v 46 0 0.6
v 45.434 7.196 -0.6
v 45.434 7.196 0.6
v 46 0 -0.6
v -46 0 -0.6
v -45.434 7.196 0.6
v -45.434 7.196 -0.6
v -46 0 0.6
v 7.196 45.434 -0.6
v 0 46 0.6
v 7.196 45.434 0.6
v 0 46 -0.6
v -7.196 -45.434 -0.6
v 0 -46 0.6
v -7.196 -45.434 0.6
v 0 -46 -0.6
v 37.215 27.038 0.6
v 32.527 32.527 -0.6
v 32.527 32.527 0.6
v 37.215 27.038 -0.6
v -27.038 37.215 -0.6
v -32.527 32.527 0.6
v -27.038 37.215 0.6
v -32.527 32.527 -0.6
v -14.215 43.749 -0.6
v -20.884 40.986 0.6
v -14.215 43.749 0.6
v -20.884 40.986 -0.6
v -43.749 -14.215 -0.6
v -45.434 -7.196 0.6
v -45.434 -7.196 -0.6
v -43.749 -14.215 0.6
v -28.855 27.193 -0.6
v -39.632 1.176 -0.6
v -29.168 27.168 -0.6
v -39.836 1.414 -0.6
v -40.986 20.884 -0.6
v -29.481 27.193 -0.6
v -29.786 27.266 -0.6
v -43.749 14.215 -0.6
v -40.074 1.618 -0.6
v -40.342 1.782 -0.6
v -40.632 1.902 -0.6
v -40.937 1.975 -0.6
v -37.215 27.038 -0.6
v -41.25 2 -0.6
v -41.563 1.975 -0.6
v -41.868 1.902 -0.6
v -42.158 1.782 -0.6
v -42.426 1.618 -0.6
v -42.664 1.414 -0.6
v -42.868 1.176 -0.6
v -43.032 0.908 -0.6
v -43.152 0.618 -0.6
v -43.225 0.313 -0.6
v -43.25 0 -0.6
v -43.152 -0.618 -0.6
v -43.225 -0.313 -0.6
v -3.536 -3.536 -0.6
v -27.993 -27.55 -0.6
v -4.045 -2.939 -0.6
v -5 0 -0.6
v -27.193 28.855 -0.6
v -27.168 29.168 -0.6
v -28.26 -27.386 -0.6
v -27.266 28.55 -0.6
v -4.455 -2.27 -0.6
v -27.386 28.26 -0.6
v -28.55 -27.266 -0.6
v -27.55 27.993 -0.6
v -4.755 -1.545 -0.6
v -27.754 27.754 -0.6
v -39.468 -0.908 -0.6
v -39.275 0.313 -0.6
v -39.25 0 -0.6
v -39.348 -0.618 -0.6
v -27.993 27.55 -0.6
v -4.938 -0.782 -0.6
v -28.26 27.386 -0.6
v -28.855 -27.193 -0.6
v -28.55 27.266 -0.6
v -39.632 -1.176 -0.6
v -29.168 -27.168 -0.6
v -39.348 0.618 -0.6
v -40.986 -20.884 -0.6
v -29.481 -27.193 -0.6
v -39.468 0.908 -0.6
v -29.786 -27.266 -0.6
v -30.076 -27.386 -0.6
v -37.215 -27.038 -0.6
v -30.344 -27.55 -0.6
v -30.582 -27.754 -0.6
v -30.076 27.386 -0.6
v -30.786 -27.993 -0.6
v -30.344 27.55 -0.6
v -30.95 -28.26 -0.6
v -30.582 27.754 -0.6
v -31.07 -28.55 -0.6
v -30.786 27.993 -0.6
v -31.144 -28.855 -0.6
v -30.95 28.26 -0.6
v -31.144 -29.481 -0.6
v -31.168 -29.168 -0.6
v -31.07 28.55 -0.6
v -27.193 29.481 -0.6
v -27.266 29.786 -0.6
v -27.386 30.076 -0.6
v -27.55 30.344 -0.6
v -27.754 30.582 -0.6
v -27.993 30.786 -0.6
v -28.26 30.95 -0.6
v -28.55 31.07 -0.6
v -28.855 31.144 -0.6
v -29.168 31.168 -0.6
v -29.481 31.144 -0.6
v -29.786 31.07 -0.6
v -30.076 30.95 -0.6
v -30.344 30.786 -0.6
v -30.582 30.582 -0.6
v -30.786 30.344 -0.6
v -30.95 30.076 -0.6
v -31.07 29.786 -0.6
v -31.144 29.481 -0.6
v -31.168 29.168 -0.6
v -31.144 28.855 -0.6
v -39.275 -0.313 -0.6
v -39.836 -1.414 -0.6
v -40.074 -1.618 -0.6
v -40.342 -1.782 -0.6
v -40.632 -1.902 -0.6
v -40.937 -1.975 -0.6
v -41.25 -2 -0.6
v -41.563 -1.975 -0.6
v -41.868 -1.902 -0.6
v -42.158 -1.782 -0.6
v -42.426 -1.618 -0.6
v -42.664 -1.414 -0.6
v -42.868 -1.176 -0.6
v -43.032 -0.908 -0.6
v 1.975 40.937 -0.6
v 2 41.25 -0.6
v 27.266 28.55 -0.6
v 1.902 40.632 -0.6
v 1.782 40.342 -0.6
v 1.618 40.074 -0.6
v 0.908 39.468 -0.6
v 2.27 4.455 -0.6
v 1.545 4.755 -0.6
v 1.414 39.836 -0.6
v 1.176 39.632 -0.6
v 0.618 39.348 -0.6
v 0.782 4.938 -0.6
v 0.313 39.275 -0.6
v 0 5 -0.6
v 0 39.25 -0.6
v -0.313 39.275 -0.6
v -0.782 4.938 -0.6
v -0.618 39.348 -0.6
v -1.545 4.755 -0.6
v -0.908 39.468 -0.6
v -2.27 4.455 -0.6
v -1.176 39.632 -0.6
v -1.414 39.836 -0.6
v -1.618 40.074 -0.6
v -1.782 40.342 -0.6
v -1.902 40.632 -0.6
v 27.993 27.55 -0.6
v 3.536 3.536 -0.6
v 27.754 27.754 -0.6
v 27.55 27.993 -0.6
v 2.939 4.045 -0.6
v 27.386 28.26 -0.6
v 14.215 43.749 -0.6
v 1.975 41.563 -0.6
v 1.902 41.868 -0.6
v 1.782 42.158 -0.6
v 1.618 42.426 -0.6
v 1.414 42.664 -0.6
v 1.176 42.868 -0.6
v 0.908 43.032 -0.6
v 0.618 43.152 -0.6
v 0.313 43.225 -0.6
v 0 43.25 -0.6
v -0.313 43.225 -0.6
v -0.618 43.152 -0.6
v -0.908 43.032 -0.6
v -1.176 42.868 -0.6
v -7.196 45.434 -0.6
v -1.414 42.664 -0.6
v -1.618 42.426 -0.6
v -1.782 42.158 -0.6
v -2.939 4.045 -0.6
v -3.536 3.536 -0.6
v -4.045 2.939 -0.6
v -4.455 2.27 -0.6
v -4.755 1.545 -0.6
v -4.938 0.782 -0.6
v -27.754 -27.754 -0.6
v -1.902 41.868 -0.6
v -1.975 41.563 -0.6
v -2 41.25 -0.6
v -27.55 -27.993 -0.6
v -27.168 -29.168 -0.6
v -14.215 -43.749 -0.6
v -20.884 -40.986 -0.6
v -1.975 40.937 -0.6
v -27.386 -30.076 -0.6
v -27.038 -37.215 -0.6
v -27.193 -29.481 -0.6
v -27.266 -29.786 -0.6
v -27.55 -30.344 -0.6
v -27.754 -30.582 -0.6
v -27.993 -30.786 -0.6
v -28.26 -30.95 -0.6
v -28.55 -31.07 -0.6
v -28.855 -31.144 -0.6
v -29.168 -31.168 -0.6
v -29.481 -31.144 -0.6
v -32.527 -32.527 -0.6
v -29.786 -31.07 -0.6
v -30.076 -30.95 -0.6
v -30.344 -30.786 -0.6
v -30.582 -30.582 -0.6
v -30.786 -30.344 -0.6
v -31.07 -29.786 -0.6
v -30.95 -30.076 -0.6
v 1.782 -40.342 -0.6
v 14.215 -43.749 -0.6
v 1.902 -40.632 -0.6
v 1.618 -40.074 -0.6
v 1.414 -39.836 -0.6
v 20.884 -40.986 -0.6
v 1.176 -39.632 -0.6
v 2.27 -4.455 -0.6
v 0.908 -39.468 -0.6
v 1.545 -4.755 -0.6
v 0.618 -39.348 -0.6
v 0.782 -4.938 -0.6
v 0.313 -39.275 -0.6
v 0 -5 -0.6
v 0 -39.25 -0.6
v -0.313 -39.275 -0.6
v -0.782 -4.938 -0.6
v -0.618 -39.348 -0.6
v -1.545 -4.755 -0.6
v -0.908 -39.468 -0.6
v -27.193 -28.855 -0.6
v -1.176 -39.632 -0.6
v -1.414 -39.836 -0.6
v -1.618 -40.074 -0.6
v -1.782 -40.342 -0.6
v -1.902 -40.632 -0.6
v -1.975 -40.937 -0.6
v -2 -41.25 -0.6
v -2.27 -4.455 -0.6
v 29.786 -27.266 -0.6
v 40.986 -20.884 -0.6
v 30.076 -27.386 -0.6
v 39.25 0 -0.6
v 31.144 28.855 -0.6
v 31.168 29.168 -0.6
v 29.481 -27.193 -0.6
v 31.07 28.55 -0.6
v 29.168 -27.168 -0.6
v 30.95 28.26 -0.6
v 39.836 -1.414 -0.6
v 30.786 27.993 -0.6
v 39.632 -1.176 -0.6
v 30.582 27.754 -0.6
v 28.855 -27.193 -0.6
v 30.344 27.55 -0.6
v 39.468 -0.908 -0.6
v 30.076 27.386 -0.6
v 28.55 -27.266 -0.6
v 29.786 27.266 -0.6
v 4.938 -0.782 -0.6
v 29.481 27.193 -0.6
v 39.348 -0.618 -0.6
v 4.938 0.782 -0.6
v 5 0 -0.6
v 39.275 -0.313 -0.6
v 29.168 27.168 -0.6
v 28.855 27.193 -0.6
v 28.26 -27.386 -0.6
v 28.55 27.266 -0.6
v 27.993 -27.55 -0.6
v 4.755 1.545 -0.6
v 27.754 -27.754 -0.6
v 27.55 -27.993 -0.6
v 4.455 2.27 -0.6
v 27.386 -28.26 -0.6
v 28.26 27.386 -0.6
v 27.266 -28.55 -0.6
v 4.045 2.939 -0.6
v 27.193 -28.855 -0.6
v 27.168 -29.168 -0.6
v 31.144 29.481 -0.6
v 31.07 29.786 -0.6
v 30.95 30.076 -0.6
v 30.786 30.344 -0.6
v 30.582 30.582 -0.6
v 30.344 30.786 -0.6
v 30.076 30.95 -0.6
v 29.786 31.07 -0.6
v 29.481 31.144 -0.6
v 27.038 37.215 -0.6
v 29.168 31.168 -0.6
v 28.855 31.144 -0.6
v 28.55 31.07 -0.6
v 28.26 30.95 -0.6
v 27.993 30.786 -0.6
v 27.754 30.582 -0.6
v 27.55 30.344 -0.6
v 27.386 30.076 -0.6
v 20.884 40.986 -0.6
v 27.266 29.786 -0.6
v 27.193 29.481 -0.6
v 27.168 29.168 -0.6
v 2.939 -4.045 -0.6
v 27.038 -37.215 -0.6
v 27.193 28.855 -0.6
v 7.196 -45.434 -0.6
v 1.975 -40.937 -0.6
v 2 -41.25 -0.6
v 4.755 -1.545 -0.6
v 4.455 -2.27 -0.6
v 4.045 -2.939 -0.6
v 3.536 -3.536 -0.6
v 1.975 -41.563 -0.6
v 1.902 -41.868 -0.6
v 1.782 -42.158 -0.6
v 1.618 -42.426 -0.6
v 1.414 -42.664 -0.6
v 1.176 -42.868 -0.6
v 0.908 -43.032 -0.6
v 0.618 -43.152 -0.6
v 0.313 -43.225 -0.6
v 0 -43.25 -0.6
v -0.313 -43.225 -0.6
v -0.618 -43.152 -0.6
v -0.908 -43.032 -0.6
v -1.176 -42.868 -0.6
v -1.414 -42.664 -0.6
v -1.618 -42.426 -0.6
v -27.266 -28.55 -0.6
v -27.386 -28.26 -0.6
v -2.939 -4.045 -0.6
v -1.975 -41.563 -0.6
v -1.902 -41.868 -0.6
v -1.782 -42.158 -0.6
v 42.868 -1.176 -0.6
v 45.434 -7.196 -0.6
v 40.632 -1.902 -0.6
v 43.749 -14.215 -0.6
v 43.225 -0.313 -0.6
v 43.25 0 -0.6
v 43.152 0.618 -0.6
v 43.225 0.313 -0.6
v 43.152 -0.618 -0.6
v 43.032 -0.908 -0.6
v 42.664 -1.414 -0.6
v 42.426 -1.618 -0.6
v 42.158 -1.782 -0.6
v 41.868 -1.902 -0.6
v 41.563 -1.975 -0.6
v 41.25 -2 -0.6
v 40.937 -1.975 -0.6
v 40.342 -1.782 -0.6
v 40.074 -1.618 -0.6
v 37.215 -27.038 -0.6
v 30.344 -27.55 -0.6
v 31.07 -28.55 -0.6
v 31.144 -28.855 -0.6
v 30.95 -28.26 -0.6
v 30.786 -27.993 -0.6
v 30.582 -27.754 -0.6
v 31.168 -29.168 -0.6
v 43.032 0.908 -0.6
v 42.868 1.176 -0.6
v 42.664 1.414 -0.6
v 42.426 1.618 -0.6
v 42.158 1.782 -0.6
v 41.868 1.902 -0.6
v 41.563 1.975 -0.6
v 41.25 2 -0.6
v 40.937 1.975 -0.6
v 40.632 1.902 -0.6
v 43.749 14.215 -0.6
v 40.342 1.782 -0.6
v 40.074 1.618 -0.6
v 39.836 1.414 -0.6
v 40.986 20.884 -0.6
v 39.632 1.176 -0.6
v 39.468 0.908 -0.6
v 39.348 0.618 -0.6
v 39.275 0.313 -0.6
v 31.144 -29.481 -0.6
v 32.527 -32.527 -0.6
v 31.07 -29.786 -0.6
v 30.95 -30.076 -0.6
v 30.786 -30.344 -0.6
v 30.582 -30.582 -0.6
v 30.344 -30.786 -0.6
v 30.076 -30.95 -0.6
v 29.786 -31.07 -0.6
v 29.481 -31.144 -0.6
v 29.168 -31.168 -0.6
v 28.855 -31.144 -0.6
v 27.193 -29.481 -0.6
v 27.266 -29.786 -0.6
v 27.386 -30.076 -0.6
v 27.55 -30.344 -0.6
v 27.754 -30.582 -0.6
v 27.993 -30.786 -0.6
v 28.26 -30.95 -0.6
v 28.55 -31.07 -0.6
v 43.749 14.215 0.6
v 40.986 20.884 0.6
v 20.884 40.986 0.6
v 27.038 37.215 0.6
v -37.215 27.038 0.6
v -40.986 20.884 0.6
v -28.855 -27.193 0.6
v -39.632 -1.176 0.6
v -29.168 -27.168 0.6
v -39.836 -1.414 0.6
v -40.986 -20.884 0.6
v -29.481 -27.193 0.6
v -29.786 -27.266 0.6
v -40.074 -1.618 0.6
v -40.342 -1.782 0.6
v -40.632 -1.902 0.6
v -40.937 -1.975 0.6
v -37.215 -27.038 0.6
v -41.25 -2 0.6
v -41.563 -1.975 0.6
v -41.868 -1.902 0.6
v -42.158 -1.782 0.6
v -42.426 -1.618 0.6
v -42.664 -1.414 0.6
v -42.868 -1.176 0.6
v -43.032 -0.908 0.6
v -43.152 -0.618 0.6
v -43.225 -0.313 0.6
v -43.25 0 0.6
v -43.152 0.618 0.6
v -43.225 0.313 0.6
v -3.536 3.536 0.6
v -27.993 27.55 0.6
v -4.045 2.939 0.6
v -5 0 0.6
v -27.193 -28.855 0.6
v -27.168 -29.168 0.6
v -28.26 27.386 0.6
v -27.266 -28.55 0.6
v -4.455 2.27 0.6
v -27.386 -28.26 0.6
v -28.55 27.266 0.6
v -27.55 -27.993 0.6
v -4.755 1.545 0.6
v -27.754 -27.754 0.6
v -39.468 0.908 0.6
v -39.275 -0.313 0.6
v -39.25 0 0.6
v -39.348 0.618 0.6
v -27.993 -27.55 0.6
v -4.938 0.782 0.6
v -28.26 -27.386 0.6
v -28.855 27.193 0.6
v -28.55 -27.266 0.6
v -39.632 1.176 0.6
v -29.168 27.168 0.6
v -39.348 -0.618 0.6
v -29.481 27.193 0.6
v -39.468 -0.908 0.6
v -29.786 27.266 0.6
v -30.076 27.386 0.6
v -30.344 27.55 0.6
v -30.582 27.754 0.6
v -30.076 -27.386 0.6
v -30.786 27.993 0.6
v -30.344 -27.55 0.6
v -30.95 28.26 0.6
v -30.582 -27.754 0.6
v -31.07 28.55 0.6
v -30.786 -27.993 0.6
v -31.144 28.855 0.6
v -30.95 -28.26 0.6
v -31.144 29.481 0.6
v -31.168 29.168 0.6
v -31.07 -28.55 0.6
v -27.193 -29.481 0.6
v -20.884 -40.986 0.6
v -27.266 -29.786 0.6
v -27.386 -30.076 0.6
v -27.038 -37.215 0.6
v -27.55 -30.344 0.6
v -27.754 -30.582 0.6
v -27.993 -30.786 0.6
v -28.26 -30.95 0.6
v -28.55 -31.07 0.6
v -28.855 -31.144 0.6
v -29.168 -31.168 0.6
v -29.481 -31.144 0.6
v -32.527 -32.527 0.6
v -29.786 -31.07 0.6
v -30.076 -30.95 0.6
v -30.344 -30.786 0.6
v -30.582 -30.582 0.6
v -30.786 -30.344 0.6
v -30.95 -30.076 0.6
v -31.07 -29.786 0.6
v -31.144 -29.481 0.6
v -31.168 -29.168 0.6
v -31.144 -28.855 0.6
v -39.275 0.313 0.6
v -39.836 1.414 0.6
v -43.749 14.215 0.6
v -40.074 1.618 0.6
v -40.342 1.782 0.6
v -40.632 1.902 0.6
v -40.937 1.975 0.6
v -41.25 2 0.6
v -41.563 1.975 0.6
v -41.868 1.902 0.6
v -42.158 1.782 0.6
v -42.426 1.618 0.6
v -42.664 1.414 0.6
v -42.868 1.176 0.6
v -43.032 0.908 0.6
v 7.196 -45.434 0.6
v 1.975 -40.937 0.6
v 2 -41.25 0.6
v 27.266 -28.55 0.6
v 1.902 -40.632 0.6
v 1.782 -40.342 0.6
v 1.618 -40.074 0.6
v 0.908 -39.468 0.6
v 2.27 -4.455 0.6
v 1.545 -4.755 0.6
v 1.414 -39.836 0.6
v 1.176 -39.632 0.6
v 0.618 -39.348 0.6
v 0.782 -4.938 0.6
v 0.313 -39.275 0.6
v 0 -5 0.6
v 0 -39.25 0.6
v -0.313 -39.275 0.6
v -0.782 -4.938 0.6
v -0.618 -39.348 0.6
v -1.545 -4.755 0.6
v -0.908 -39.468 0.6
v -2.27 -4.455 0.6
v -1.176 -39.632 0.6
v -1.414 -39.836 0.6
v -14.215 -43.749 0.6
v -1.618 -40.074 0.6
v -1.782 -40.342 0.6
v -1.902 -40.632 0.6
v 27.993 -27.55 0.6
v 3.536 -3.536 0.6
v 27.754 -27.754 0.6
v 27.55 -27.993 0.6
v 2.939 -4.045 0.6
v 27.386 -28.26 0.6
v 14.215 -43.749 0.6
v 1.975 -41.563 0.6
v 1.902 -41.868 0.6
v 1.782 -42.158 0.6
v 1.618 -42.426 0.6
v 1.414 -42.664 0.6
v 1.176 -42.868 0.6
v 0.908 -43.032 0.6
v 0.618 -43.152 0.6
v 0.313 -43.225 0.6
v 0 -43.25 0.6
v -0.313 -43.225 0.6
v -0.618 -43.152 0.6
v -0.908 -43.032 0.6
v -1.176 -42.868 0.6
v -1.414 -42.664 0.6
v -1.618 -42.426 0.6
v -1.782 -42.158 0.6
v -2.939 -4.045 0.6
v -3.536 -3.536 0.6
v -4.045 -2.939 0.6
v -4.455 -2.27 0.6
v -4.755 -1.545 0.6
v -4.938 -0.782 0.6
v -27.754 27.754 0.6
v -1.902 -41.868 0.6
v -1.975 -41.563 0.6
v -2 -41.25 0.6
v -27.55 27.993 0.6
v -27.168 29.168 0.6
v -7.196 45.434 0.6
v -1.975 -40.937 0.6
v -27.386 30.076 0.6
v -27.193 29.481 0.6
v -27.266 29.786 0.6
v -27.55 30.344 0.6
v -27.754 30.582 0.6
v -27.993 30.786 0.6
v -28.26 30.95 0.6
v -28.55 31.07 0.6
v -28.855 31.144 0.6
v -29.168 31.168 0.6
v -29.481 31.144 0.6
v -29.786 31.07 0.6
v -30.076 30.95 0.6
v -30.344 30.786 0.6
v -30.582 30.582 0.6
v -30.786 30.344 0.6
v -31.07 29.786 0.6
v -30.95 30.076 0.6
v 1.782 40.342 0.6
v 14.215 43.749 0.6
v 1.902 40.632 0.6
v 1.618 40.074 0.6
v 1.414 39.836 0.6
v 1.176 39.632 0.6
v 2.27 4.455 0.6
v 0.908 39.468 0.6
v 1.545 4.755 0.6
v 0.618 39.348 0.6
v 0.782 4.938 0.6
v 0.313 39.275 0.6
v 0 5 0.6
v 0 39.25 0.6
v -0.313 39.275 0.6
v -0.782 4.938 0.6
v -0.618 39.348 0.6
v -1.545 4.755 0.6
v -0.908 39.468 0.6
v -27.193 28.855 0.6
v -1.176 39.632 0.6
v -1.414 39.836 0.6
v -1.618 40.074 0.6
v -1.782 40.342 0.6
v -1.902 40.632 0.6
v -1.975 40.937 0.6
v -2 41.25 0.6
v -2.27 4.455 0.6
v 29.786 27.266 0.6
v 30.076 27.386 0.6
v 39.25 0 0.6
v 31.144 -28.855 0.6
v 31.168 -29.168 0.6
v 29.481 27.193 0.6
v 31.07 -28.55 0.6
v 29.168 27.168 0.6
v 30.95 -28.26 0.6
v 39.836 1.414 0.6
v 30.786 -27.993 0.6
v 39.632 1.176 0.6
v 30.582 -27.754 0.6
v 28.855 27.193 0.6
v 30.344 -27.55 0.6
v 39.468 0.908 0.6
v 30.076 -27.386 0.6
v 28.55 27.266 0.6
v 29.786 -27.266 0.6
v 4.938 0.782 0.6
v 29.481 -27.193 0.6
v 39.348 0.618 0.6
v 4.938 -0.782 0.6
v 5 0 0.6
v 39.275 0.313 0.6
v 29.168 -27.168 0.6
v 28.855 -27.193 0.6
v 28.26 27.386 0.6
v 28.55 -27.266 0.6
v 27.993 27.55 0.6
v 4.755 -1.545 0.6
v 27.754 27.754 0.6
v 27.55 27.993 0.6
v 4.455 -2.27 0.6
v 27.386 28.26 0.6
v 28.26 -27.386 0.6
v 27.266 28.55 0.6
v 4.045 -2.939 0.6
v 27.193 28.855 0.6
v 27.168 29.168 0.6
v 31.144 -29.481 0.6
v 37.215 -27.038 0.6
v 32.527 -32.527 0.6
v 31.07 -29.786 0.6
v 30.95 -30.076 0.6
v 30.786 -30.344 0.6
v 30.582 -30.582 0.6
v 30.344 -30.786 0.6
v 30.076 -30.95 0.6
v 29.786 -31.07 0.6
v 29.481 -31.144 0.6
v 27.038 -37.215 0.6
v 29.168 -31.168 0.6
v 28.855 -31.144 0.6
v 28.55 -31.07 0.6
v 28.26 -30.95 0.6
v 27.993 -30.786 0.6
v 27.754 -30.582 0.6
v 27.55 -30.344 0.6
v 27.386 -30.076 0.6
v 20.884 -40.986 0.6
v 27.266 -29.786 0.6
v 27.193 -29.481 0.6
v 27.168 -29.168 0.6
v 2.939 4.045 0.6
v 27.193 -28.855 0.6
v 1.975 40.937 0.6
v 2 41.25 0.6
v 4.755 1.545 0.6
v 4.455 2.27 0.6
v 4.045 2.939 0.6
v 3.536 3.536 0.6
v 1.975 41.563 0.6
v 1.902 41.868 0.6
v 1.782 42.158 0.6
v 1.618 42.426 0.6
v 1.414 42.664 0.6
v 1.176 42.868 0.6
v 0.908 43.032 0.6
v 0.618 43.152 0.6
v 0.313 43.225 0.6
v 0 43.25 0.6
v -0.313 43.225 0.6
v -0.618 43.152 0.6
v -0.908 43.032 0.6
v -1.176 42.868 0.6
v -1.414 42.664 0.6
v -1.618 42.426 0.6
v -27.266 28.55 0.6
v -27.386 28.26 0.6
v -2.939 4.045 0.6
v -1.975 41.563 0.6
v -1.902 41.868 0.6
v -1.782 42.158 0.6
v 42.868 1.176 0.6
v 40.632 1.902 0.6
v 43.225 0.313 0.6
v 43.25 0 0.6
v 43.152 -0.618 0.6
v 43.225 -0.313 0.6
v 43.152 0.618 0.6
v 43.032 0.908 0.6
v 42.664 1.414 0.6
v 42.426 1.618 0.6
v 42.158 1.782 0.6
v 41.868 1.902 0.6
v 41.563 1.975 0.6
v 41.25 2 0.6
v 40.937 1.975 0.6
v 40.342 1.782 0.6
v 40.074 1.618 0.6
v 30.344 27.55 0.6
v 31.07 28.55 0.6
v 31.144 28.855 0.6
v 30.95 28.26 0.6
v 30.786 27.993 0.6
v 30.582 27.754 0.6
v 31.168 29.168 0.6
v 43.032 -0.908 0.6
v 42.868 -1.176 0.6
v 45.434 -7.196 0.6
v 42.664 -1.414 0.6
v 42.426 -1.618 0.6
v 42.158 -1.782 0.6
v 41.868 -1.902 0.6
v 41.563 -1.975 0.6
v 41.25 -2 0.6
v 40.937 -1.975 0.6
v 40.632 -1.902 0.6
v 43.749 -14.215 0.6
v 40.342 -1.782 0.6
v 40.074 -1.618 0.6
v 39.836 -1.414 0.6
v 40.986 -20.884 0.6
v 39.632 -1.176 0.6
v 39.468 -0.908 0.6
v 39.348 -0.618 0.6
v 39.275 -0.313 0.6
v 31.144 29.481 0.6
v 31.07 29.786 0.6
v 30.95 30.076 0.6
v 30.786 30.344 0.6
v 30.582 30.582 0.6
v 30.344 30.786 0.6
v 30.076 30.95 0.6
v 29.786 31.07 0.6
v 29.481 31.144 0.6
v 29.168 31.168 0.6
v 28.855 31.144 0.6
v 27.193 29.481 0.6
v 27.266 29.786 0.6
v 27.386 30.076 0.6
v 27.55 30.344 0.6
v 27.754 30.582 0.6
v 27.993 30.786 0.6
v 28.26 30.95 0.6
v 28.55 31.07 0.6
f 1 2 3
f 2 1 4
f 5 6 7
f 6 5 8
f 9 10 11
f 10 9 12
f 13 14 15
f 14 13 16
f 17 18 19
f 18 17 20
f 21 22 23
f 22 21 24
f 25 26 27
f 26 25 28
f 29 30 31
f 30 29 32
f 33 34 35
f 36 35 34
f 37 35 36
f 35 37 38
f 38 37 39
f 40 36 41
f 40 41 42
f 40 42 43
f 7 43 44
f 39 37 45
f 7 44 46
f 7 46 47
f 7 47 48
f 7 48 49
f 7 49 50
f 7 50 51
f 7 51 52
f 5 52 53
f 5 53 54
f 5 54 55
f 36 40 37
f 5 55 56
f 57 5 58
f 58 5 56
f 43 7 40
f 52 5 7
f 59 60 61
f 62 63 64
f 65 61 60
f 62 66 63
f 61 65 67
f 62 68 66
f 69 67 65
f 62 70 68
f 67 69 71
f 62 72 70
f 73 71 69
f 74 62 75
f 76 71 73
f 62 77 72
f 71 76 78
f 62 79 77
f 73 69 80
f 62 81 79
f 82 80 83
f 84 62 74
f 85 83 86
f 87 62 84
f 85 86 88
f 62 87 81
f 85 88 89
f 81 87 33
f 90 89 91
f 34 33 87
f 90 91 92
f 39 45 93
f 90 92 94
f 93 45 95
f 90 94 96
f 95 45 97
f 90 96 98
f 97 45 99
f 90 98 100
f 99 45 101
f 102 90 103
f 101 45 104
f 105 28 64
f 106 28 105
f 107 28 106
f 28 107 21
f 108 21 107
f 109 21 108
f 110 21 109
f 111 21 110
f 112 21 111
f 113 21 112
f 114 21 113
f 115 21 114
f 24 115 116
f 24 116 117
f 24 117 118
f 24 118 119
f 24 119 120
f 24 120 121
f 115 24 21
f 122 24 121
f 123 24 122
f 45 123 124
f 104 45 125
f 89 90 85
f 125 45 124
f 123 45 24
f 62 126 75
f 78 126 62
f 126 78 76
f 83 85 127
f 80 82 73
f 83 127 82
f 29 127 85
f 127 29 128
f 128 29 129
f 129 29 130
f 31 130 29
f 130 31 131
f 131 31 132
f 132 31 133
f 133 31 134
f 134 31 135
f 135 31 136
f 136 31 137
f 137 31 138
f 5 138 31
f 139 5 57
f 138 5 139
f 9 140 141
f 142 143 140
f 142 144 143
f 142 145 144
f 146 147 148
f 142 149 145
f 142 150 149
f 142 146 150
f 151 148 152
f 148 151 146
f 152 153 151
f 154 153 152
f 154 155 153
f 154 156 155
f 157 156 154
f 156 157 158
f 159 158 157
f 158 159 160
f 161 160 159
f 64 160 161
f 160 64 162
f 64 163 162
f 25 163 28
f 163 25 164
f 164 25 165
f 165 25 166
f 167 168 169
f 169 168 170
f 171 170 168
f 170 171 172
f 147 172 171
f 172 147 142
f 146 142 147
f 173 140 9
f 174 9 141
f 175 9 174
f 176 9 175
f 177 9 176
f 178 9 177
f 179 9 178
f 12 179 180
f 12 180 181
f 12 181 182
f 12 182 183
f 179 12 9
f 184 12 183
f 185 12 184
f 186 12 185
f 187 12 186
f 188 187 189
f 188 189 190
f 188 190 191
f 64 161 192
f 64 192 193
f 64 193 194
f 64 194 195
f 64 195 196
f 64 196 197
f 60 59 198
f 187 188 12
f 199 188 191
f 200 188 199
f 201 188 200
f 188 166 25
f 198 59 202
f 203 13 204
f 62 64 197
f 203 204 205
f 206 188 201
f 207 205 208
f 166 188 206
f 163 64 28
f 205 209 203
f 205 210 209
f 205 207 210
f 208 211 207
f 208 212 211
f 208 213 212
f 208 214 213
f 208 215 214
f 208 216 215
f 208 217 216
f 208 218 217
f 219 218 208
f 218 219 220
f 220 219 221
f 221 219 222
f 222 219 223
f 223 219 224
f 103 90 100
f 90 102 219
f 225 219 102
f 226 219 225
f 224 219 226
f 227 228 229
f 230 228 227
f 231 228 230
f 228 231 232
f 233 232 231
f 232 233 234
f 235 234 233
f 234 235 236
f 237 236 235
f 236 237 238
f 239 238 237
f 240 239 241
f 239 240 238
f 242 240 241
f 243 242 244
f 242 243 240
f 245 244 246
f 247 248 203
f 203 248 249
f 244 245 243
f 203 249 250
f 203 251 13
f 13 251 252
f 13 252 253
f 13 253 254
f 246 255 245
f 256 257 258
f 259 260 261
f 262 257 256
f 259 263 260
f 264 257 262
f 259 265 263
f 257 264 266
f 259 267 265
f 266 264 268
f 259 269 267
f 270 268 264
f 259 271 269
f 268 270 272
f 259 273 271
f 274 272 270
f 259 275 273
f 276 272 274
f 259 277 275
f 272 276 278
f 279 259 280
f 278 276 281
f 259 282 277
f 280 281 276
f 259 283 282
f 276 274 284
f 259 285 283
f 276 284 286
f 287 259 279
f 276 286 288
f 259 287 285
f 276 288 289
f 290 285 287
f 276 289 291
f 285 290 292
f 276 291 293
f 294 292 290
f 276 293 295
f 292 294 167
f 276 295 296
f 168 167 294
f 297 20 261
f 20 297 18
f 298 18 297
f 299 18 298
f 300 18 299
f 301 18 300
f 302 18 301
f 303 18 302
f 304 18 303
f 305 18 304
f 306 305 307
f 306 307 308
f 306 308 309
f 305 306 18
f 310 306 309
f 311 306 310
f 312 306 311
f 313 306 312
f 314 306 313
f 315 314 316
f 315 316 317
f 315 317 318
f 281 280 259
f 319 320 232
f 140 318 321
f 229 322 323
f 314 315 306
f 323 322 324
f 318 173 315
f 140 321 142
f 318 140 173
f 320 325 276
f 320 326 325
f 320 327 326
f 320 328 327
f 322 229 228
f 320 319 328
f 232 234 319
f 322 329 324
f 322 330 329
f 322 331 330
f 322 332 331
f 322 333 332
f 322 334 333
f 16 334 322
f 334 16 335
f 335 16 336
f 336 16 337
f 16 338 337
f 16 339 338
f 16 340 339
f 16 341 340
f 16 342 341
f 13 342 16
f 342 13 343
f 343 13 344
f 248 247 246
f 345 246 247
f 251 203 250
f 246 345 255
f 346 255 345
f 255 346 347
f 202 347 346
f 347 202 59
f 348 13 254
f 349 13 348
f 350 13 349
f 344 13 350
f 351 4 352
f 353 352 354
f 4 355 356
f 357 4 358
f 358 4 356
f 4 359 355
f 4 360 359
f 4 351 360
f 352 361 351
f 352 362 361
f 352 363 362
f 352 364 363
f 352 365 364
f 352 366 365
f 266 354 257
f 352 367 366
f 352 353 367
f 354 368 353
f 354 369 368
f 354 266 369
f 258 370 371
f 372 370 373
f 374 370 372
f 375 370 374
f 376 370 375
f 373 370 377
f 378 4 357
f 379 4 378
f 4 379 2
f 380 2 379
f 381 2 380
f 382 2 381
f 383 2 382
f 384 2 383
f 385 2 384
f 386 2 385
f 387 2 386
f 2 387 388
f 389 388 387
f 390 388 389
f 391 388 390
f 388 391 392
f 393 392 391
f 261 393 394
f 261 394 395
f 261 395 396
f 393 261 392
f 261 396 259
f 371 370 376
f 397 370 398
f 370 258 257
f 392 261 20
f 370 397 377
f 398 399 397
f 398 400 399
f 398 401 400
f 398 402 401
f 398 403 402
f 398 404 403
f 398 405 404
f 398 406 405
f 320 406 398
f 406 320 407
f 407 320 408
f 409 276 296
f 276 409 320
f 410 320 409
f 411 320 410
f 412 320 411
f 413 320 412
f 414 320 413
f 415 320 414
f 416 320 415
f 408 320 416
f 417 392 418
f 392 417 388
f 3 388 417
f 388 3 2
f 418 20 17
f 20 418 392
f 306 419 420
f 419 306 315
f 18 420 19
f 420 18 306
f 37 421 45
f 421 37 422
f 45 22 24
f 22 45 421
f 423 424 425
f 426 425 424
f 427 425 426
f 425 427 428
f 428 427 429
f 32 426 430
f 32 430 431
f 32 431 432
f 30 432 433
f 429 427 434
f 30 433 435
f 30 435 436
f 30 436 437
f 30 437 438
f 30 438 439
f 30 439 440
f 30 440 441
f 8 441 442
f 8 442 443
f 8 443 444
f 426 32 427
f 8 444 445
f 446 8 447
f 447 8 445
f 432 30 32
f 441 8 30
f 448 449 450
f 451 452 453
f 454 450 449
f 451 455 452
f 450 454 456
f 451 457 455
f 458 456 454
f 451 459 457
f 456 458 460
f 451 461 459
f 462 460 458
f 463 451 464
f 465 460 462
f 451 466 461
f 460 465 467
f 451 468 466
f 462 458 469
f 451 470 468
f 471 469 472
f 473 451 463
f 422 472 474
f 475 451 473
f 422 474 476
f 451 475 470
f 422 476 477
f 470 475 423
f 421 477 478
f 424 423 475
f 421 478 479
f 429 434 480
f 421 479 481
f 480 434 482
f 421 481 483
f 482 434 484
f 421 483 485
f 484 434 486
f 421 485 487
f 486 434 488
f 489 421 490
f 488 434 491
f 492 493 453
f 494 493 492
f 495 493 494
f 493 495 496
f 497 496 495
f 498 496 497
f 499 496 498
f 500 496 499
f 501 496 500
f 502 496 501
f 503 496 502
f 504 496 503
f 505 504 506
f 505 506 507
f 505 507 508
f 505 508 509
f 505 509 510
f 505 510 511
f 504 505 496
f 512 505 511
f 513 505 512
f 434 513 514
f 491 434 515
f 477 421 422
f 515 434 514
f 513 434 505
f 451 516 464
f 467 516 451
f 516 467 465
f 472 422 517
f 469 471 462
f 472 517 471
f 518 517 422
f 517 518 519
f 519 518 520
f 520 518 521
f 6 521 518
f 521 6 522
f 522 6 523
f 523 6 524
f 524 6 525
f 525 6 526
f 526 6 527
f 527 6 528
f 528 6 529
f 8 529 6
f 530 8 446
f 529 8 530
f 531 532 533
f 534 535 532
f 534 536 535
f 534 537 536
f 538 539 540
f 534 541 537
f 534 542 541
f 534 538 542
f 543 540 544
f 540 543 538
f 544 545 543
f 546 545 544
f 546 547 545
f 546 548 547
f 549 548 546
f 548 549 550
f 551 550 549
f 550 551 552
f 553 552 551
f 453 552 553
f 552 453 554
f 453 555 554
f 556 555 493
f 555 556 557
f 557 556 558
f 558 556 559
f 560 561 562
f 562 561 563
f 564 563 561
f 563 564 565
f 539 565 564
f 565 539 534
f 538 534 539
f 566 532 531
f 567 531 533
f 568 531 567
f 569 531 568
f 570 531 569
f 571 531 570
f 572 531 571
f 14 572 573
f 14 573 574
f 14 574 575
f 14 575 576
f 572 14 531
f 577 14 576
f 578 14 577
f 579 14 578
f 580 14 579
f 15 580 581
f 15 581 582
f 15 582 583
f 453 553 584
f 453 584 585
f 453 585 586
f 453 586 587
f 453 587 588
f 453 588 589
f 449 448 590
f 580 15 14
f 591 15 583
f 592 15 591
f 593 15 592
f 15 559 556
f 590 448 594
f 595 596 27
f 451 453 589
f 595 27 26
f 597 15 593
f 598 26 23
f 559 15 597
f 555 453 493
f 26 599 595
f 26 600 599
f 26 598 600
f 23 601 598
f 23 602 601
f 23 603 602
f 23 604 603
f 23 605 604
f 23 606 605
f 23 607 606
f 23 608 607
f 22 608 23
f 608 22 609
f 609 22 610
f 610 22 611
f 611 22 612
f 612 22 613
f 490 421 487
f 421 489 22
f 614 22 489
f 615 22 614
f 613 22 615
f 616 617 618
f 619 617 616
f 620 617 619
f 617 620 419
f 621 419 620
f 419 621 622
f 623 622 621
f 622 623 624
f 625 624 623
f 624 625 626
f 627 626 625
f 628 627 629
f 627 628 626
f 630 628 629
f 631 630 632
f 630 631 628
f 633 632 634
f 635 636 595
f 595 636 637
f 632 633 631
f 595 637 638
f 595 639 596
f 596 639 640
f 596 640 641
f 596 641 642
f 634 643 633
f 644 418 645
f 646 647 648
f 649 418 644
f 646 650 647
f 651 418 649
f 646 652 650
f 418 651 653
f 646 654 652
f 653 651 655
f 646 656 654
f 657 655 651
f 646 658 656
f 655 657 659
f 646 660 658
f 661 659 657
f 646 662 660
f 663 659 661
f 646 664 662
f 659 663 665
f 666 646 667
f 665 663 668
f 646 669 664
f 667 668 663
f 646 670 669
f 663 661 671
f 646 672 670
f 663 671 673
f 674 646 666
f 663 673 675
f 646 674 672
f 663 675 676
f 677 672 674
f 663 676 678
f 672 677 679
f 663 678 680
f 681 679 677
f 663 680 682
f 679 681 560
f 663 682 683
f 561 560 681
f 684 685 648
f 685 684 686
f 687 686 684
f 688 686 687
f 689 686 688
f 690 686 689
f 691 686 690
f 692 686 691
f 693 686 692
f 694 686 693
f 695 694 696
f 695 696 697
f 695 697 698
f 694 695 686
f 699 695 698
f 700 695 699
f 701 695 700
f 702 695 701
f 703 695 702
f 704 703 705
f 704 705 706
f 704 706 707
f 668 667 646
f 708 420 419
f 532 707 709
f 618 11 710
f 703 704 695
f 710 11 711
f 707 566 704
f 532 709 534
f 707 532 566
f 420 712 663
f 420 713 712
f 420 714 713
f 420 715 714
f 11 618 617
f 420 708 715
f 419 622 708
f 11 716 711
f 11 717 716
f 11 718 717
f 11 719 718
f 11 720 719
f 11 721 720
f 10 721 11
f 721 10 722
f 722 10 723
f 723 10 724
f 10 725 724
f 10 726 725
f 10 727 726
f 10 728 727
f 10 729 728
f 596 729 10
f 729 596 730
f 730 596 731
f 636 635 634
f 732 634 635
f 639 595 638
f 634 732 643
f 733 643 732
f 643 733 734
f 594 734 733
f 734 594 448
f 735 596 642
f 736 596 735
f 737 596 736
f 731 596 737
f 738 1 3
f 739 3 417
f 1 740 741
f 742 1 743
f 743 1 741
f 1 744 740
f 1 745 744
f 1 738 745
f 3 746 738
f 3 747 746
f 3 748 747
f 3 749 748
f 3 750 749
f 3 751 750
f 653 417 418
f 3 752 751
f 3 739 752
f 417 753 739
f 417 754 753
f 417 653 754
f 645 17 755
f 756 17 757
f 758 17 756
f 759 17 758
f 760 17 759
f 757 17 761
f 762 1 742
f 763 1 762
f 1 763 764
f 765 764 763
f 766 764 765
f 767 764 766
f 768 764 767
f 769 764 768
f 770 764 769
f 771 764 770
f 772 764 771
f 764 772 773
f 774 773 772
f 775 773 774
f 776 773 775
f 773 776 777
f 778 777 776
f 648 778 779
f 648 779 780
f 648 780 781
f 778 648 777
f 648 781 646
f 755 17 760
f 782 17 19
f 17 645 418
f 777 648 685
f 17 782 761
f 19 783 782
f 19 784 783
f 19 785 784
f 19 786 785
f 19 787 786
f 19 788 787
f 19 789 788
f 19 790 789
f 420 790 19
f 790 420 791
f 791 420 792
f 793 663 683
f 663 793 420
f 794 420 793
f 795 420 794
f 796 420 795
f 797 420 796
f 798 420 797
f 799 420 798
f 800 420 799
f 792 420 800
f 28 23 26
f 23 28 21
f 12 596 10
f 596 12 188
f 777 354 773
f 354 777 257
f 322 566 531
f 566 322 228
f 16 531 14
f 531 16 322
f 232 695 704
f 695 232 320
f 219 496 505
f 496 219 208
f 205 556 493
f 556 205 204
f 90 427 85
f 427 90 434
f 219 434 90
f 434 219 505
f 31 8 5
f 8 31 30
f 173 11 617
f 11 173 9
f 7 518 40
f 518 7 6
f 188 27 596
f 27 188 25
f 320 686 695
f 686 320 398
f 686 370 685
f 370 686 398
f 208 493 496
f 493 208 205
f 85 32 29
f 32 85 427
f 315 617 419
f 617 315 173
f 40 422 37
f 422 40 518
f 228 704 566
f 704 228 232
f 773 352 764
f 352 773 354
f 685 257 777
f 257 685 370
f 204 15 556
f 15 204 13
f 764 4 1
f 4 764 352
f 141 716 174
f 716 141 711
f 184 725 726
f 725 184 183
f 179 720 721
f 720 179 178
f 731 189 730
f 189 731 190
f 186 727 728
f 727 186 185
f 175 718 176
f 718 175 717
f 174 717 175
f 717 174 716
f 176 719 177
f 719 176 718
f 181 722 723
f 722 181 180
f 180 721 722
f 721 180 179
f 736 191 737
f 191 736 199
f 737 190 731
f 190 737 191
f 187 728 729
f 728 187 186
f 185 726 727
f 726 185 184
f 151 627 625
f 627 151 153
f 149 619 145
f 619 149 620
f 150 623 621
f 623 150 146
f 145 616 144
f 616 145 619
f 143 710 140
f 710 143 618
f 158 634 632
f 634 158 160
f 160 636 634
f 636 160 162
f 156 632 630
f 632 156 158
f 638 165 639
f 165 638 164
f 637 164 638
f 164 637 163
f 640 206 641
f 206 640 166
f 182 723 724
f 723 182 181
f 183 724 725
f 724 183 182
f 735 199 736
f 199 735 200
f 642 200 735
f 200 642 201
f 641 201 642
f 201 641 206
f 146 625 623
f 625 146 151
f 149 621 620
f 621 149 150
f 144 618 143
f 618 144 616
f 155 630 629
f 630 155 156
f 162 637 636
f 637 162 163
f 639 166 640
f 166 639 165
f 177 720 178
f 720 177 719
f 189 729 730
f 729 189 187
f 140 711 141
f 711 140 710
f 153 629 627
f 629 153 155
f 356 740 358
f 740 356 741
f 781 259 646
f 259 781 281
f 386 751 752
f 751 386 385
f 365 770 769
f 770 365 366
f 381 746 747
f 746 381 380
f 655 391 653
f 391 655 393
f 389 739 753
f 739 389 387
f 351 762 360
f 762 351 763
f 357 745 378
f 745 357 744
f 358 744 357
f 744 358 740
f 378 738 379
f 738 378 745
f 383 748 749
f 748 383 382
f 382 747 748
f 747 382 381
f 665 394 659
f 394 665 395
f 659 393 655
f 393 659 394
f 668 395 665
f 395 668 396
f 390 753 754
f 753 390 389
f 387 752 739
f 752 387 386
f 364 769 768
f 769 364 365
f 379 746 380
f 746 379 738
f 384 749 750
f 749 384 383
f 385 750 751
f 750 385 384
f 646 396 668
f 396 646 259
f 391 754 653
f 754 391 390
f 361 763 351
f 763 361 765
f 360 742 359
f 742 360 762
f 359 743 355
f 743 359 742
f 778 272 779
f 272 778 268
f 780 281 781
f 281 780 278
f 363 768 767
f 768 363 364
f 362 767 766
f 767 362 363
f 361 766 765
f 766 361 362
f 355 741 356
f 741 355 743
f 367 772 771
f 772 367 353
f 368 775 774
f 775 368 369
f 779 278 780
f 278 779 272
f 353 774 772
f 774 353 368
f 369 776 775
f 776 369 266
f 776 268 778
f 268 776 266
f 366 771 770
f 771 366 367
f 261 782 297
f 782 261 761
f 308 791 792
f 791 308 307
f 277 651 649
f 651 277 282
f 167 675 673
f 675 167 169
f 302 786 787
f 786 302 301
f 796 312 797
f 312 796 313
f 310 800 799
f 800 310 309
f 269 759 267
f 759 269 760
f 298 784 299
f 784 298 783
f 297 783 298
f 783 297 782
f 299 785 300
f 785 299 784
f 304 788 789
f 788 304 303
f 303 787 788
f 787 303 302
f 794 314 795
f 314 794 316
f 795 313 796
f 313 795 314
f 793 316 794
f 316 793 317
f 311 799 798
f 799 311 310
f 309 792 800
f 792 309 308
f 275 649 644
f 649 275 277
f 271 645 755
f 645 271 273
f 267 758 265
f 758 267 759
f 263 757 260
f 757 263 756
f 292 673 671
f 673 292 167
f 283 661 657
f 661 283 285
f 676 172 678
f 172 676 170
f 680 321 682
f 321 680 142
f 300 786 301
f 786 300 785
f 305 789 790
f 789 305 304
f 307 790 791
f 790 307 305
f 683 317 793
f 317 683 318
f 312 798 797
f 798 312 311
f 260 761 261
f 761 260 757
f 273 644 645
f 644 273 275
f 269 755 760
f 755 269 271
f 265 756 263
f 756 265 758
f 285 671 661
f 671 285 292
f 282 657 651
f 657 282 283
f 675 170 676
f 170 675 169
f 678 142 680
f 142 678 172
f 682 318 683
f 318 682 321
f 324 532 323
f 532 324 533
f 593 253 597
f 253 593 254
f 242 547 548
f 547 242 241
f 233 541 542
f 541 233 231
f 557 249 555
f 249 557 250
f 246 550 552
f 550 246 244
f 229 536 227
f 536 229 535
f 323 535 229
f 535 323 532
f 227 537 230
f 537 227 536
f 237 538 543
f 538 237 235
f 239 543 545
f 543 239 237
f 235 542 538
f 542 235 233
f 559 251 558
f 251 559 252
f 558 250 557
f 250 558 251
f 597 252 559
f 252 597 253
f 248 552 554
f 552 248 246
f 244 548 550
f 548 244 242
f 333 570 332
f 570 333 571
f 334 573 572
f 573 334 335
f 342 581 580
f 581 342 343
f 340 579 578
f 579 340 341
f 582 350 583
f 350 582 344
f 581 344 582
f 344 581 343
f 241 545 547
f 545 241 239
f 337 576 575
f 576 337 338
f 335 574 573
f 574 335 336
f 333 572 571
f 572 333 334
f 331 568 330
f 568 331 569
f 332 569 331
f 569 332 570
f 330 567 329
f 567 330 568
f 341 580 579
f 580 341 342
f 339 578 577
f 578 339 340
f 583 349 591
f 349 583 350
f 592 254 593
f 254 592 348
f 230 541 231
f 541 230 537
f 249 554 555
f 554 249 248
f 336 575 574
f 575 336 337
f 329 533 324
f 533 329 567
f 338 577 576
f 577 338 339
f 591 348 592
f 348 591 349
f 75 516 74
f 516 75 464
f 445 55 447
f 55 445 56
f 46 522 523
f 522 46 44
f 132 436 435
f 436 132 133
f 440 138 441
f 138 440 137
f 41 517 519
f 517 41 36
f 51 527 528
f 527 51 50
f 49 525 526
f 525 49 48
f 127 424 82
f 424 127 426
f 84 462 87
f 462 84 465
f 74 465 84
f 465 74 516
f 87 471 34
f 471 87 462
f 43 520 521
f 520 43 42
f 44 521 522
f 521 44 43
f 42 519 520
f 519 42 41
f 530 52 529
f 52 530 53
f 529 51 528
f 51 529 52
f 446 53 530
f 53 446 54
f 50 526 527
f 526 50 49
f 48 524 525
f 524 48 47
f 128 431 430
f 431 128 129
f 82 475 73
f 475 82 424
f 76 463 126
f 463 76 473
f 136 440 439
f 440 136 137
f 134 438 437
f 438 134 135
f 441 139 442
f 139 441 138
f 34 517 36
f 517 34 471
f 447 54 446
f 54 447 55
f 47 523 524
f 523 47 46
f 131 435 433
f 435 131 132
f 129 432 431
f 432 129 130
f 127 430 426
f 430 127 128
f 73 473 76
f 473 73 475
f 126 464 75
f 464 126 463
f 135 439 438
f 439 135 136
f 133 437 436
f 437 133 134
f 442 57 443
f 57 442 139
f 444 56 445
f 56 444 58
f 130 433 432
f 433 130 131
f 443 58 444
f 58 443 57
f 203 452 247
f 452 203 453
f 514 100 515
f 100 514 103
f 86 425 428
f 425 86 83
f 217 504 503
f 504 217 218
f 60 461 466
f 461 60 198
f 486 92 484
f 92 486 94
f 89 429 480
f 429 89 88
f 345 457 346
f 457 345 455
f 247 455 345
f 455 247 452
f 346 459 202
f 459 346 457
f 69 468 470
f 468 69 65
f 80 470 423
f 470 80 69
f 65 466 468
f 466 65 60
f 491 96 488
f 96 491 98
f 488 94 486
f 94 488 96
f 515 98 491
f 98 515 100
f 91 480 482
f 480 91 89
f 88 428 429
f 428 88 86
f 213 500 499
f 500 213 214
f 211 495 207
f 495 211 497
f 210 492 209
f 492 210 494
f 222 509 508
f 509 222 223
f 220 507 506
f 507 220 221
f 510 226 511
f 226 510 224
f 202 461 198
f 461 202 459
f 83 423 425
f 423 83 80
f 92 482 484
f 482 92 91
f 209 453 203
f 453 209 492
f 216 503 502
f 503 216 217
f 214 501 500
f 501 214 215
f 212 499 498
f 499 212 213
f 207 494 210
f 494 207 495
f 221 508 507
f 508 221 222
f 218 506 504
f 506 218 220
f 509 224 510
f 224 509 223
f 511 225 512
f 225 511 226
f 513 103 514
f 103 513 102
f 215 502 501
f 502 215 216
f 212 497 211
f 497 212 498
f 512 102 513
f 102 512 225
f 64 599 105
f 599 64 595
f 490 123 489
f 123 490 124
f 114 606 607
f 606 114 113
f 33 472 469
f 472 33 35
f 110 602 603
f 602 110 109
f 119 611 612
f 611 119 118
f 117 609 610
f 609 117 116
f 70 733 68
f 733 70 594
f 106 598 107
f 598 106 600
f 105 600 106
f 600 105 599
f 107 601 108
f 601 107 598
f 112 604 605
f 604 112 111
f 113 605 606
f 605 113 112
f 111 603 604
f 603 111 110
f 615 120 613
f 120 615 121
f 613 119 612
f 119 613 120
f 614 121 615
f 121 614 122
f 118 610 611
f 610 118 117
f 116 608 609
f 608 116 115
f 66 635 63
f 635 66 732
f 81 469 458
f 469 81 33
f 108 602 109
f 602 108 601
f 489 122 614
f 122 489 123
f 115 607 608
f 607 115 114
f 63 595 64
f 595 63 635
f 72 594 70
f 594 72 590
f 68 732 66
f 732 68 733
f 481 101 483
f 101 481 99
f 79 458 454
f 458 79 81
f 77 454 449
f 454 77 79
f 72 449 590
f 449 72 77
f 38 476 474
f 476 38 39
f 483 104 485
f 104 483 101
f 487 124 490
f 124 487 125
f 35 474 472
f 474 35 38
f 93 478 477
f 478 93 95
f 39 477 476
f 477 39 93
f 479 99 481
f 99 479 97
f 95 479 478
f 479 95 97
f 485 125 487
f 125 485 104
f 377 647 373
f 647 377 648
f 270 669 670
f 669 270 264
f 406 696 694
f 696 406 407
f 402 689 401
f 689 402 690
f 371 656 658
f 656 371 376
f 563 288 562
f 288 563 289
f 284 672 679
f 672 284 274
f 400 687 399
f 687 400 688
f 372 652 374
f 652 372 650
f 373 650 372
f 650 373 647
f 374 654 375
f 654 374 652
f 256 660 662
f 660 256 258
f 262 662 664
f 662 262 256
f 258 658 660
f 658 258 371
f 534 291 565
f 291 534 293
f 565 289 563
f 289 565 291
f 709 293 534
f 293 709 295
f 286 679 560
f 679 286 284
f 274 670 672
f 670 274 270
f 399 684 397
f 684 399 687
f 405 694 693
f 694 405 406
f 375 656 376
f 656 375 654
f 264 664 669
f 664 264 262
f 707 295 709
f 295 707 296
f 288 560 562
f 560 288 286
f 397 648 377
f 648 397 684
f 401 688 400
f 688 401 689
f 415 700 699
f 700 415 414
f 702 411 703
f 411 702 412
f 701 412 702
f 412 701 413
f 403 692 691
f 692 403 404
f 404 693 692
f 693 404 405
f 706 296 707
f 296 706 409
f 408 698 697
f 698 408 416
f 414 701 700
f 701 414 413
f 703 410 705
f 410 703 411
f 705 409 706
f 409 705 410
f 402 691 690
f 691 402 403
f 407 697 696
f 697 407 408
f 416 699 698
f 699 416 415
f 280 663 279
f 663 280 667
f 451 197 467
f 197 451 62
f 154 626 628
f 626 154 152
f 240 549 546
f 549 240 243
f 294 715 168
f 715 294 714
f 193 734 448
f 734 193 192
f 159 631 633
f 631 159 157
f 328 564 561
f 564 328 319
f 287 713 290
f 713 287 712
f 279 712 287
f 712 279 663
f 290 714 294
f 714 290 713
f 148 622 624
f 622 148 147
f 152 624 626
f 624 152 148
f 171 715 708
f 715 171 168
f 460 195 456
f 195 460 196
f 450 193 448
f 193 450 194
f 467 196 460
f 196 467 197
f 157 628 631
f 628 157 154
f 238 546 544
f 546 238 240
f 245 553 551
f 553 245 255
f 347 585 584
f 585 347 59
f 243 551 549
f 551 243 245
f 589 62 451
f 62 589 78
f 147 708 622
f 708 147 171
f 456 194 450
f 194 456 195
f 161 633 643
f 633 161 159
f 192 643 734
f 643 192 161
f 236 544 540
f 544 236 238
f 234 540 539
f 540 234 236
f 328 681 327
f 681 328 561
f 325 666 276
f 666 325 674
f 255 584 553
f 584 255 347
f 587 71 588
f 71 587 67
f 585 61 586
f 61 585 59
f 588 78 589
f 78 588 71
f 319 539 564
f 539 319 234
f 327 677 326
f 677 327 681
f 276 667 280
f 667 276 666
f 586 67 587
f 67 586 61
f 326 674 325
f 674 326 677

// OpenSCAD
thick = 1.2;
d_screw = 4;
r_screw = (86.5 - d_screw) / 2;
$fn = 40;

difference()
{
    cylinder(d = 92, h = thick, center = true);
    
    translate([0, r_screw, 0])
    #cylinder(d = d_screw, h = 2*thick, center = true);
    
    translate([r_screw, 0, 0])
    #cylinder(d = d_screw, h = 2*thick, center = true);
    
    translate([(r_screw)/sqrt(2), (r_screw)/sqrt(2), 0])
    #cylinder(d = d_screw, h = 2*thick, center = true);
    
    translate([0, -r_screw, 0])
    #cylinder(d = d_screw, h = 2*thick, center = true);
    
    translate([-r_screw, 0, 0])
    #cylinder(d = d_screw, h = 2*thick, center = true);
    
    translate([-(r_screw)/sqrt(2), -(r_screw)/sqrt(2), 0])
    #cylinder(d = d_screw, h = 2*thick, center = true);
        
    translate([-(r_screw)/sqrt(2), (r_screw)/sqrt(2), 0])
    #cylinder(d = d_screw, h = 2*thick, center = true);
    
    translate([(r_screw)/sqrt(2), -(r_screw)/sqrt(2), 0])
    #cylinder(d = d_screw, h = 2*thick, center = true);
    
    cylinder(d = 10, h = 2*thick, center = true);
}
